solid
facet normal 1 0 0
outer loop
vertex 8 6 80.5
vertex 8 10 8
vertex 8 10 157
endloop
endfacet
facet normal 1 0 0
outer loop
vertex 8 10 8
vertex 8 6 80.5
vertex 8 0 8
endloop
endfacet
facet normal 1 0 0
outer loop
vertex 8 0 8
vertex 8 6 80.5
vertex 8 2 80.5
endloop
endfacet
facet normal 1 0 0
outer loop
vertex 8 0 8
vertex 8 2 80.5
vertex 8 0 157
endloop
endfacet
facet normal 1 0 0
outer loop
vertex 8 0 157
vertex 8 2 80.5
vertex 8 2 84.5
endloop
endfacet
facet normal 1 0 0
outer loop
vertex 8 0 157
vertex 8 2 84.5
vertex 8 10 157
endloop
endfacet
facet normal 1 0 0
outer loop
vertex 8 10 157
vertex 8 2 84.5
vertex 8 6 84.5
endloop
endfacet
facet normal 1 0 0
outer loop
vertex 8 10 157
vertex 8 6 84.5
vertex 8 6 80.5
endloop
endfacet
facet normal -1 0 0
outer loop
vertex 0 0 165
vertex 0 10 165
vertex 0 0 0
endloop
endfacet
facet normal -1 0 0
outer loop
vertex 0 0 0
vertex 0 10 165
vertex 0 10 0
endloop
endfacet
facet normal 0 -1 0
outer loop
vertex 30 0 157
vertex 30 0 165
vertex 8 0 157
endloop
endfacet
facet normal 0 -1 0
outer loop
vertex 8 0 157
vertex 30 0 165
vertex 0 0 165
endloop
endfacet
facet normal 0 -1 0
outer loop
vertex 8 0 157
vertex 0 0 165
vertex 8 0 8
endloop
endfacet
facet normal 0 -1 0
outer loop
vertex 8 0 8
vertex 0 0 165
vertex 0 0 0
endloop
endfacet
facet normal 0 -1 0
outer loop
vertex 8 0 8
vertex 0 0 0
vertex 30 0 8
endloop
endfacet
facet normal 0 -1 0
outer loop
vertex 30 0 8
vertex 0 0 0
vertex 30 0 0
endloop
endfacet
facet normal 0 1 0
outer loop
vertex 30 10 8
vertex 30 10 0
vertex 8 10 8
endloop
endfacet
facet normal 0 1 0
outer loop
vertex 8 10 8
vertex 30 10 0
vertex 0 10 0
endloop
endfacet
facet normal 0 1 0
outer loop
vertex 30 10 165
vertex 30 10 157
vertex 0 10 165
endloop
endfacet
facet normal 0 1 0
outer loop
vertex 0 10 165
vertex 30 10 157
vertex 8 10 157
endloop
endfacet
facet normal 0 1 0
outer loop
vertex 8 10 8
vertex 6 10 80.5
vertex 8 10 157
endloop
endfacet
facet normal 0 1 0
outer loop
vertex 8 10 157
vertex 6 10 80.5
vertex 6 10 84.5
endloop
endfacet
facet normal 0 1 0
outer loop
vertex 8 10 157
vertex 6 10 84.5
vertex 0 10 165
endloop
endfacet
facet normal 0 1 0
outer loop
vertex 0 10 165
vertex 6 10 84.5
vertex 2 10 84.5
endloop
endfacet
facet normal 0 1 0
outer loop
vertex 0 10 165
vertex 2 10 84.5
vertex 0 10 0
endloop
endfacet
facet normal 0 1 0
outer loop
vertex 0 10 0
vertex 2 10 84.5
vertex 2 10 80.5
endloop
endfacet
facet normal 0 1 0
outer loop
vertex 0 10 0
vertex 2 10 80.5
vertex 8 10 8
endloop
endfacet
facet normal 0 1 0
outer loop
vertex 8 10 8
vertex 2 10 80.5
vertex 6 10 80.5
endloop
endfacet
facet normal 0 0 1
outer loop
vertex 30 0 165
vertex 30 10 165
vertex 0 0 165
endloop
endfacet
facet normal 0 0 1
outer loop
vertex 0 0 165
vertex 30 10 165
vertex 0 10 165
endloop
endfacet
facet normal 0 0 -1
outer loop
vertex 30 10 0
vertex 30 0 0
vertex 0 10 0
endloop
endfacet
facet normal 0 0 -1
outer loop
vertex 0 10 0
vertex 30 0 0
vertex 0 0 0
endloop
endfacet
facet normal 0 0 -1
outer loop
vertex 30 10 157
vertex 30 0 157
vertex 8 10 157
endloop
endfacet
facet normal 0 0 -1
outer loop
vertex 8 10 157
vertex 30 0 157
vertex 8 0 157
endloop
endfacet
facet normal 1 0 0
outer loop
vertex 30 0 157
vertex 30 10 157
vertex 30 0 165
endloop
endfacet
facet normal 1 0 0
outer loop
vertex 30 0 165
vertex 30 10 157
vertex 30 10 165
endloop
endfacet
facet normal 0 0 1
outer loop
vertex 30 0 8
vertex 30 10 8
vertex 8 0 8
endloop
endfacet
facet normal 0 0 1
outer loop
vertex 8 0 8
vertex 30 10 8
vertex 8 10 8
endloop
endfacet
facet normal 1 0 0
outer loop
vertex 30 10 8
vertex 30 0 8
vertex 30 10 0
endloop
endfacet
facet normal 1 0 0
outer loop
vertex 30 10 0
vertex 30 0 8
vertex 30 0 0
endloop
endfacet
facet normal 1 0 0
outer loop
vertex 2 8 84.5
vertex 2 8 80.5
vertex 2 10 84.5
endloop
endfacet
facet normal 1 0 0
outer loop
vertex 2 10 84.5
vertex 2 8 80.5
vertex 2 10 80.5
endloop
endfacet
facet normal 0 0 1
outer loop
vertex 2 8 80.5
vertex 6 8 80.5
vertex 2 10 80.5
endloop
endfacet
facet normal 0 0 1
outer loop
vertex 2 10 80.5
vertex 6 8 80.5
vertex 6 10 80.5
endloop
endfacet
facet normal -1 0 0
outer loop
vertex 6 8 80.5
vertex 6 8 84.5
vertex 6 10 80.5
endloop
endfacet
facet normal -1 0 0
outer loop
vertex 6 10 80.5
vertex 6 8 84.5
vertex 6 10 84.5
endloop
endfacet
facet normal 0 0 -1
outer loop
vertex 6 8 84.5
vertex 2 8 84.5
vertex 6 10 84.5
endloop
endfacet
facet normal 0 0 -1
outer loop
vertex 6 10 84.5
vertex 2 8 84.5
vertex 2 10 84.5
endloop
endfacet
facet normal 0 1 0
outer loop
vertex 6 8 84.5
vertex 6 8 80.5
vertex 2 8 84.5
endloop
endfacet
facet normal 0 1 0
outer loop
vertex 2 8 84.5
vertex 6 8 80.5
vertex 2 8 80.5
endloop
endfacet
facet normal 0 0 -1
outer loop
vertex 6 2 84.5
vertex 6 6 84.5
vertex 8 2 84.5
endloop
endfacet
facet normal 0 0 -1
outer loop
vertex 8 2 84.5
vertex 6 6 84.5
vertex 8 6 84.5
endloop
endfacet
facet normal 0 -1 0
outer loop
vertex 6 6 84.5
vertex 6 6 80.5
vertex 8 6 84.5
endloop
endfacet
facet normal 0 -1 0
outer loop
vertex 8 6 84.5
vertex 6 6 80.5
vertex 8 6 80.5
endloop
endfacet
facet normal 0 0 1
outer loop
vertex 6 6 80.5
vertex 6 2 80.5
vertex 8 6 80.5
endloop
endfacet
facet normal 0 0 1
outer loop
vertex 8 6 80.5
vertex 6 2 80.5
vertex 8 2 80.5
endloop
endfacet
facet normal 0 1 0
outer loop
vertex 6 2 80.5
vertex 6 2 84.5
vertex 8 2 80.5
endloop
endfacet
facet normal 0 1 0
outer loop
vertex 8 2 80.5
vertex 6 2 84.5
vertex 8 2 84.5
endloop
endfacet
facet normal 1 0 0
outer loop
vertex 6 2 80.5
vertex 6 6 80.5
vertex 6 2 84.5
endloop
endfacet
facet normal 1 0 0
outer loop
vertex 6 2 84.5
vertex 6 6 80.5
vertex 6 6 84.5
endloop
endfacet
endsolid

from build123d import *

# Parameters (mm, degrees)
SKETCH1_W           = 8
SKETCH1_H           = 10
BOSS_EXTRUDE1_DEPTH = 165
SKETCH2_W           = 8
SKETCH2_H           = 10
BOSS_EXTRUDE2_DEPTH = 22
SKETCH3_W           = 4
SKETCH3_H           = 4
CUT_EXTRUDE1_DEPTH  = 2
SKETCH5_W           = 4
SKETCH5_H           = 4
CUT_EXTRUDE2_DEPTH  = 2


with BuildPart() as part:
    # Sketch1 → Boss-Extrude1 (new body)
    with BuildSketch(Plane.XY):
        with Locations((4, 5)):
            Rectangle(SKETCH1_W, SKETCH1_H)
    extrude(amount=BOSS_EXTRUDE1_DEPTH)

    # Sketch2 → Boss-Extrude2 (add)
    with BuildSketch(Plane(origin=(8, 0, 0), x_dir=(0, 0, -1), z_dir=(1, 0, 0))):
        with Locations((-4, 5)):
            Rectangle(SKETCH2_W, SKETCH2_H)
        with Locations((-161, 5)):
            Rectangle(SKETCH2_W, SKETCH2_H)
    extrude(amount=BOSS_EXTRUDE2_DEPTH)

    # Sketch3 → Cut-Extrude1 (cut)
    with BuildSketch(Plane(origin=(0, 10, 0), x_dir=(1, 0, 0), z_dir=(0, 1, 0))):
        with Locations((4, -82.5)):
            Rectangle(SKETCH3_W, SKETCH3_H)
    extrude(amount=-CUT_EXTRUDE1_DEPTH, mode=Mode.SUBTRACT)

    # Sketch5 → Cut-Extrude2 (cut)
    with BuildSketch(Plane(origin=(8, 0, 0), x_dir=(0, 0, -1), z_dir=(1, 0, 0))):
        with Locations((-82.5, 4)):
            Rectangle(SKETCH5_W, SKETCH5_H)
    extrude(amount=-CUT_EXTRUDE2_DEPTH, mode=Mode.SUBTRACT)


solid = part.part
